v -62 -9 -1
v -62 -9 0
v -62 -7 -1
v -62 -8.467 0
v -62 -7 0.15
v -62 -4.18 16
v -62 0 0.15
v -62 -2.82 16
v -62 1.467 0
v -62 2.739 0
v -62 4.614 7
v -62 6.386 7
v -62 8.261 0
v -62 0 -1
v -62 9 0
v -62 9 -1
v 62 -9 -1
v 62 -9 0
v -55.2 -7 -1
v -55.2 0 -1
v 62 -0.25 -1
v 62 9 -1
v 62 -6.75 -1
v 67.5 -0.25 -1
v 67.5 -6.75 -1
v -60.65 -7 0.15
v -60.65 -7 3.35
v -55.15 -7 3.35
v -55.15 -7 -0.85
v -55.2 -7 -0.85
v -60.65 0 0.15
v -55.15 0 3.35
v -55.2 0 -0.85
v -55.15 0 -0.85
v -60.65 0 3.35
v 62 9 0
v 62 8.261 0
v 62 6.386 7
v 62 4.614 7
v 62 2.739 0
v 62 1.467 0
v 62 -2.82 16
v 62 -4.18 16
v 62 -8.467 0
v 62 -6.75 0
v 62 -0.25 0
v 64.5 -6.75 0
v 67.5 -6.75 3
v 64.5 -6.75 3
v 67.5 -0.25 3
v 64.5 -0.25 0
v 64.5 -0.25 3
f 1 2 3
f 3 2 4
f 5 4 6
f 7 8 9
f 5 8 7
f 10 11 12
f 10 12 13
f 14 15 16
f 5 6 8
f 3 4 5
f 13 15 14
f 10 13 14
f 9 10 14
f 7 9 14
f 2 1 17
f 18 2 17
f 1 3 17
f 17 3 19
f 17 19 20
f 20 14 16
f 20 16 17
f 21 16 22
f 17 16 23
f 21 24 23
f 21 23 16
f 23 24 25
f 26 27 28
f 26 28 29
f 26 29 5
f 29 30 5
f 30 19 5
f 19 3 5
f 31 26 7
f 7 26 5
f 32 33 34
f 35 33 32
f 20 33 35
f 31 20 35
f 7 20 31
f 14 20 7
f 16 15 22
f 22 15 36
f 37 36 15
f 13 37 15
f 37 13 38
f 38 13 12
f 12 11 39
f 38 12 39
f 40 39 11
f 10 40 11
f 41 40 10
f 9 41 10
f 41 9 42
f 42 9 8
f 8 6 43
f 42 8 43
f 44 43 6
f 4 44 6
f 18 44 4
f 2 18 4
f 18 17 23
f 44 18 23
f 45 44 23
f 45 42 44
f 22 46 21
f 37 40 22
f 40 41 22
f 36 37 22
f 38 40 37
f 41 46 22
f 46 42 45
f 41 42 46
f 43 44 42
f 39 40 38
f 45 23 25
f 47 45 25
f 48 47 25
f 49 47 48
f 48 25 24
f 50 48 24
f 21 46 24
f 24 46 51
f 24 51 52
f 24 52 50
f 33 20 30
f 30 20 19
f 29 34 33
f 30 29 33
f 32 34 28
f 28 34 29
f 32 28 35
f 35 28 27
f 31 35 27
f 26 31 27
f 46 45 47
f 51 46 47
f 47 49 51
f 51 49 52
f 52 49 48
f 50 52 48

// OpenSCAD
module back() { difference() {
cube([124,10,16], center=true);
translate([-2,-8,0]) rotate([75,0,0]) cube([130,20,10], center=true);
translate([-2,8,0]) rotate([-75,0,0]) cube([130,20,10], center=true);
}
}

module front() { difference() {
cube([124,6,7], center=true);
translate([-2,-7,0]) rotate([75,0,0]) cube([130,20,10], center=true);
translate([-2,7,0]) rotate([-75,0,0]) cube([130,20,10], center=true);
}
}

module latch() { union() {
translate([1.5,0,1])cube([3,6.5,4], center=true);
translate([-1,0,-0.5])cube([8,6.5,1], center=true);
}
}

module latchhook() { union() { //Subtract me
translate([1.6,0,1.1])cube([5.5,7,4.2], center=true);
translate([-1.8,0,-0.6])cube([12.2,7,1.2], center=true);
}
}


module body() {
union() {
difference() {
union() {
translate([0,-3.5,8]) back();
translate([0,5.5,3.5]) front();
translate([0,0,-0.5]) cube([124,18,1], center=true);
}
translate([-59.5,-3.5,0.15]) latchhook();
}
translate([64.5,-3.5,0]) latch();
}
}

body();
